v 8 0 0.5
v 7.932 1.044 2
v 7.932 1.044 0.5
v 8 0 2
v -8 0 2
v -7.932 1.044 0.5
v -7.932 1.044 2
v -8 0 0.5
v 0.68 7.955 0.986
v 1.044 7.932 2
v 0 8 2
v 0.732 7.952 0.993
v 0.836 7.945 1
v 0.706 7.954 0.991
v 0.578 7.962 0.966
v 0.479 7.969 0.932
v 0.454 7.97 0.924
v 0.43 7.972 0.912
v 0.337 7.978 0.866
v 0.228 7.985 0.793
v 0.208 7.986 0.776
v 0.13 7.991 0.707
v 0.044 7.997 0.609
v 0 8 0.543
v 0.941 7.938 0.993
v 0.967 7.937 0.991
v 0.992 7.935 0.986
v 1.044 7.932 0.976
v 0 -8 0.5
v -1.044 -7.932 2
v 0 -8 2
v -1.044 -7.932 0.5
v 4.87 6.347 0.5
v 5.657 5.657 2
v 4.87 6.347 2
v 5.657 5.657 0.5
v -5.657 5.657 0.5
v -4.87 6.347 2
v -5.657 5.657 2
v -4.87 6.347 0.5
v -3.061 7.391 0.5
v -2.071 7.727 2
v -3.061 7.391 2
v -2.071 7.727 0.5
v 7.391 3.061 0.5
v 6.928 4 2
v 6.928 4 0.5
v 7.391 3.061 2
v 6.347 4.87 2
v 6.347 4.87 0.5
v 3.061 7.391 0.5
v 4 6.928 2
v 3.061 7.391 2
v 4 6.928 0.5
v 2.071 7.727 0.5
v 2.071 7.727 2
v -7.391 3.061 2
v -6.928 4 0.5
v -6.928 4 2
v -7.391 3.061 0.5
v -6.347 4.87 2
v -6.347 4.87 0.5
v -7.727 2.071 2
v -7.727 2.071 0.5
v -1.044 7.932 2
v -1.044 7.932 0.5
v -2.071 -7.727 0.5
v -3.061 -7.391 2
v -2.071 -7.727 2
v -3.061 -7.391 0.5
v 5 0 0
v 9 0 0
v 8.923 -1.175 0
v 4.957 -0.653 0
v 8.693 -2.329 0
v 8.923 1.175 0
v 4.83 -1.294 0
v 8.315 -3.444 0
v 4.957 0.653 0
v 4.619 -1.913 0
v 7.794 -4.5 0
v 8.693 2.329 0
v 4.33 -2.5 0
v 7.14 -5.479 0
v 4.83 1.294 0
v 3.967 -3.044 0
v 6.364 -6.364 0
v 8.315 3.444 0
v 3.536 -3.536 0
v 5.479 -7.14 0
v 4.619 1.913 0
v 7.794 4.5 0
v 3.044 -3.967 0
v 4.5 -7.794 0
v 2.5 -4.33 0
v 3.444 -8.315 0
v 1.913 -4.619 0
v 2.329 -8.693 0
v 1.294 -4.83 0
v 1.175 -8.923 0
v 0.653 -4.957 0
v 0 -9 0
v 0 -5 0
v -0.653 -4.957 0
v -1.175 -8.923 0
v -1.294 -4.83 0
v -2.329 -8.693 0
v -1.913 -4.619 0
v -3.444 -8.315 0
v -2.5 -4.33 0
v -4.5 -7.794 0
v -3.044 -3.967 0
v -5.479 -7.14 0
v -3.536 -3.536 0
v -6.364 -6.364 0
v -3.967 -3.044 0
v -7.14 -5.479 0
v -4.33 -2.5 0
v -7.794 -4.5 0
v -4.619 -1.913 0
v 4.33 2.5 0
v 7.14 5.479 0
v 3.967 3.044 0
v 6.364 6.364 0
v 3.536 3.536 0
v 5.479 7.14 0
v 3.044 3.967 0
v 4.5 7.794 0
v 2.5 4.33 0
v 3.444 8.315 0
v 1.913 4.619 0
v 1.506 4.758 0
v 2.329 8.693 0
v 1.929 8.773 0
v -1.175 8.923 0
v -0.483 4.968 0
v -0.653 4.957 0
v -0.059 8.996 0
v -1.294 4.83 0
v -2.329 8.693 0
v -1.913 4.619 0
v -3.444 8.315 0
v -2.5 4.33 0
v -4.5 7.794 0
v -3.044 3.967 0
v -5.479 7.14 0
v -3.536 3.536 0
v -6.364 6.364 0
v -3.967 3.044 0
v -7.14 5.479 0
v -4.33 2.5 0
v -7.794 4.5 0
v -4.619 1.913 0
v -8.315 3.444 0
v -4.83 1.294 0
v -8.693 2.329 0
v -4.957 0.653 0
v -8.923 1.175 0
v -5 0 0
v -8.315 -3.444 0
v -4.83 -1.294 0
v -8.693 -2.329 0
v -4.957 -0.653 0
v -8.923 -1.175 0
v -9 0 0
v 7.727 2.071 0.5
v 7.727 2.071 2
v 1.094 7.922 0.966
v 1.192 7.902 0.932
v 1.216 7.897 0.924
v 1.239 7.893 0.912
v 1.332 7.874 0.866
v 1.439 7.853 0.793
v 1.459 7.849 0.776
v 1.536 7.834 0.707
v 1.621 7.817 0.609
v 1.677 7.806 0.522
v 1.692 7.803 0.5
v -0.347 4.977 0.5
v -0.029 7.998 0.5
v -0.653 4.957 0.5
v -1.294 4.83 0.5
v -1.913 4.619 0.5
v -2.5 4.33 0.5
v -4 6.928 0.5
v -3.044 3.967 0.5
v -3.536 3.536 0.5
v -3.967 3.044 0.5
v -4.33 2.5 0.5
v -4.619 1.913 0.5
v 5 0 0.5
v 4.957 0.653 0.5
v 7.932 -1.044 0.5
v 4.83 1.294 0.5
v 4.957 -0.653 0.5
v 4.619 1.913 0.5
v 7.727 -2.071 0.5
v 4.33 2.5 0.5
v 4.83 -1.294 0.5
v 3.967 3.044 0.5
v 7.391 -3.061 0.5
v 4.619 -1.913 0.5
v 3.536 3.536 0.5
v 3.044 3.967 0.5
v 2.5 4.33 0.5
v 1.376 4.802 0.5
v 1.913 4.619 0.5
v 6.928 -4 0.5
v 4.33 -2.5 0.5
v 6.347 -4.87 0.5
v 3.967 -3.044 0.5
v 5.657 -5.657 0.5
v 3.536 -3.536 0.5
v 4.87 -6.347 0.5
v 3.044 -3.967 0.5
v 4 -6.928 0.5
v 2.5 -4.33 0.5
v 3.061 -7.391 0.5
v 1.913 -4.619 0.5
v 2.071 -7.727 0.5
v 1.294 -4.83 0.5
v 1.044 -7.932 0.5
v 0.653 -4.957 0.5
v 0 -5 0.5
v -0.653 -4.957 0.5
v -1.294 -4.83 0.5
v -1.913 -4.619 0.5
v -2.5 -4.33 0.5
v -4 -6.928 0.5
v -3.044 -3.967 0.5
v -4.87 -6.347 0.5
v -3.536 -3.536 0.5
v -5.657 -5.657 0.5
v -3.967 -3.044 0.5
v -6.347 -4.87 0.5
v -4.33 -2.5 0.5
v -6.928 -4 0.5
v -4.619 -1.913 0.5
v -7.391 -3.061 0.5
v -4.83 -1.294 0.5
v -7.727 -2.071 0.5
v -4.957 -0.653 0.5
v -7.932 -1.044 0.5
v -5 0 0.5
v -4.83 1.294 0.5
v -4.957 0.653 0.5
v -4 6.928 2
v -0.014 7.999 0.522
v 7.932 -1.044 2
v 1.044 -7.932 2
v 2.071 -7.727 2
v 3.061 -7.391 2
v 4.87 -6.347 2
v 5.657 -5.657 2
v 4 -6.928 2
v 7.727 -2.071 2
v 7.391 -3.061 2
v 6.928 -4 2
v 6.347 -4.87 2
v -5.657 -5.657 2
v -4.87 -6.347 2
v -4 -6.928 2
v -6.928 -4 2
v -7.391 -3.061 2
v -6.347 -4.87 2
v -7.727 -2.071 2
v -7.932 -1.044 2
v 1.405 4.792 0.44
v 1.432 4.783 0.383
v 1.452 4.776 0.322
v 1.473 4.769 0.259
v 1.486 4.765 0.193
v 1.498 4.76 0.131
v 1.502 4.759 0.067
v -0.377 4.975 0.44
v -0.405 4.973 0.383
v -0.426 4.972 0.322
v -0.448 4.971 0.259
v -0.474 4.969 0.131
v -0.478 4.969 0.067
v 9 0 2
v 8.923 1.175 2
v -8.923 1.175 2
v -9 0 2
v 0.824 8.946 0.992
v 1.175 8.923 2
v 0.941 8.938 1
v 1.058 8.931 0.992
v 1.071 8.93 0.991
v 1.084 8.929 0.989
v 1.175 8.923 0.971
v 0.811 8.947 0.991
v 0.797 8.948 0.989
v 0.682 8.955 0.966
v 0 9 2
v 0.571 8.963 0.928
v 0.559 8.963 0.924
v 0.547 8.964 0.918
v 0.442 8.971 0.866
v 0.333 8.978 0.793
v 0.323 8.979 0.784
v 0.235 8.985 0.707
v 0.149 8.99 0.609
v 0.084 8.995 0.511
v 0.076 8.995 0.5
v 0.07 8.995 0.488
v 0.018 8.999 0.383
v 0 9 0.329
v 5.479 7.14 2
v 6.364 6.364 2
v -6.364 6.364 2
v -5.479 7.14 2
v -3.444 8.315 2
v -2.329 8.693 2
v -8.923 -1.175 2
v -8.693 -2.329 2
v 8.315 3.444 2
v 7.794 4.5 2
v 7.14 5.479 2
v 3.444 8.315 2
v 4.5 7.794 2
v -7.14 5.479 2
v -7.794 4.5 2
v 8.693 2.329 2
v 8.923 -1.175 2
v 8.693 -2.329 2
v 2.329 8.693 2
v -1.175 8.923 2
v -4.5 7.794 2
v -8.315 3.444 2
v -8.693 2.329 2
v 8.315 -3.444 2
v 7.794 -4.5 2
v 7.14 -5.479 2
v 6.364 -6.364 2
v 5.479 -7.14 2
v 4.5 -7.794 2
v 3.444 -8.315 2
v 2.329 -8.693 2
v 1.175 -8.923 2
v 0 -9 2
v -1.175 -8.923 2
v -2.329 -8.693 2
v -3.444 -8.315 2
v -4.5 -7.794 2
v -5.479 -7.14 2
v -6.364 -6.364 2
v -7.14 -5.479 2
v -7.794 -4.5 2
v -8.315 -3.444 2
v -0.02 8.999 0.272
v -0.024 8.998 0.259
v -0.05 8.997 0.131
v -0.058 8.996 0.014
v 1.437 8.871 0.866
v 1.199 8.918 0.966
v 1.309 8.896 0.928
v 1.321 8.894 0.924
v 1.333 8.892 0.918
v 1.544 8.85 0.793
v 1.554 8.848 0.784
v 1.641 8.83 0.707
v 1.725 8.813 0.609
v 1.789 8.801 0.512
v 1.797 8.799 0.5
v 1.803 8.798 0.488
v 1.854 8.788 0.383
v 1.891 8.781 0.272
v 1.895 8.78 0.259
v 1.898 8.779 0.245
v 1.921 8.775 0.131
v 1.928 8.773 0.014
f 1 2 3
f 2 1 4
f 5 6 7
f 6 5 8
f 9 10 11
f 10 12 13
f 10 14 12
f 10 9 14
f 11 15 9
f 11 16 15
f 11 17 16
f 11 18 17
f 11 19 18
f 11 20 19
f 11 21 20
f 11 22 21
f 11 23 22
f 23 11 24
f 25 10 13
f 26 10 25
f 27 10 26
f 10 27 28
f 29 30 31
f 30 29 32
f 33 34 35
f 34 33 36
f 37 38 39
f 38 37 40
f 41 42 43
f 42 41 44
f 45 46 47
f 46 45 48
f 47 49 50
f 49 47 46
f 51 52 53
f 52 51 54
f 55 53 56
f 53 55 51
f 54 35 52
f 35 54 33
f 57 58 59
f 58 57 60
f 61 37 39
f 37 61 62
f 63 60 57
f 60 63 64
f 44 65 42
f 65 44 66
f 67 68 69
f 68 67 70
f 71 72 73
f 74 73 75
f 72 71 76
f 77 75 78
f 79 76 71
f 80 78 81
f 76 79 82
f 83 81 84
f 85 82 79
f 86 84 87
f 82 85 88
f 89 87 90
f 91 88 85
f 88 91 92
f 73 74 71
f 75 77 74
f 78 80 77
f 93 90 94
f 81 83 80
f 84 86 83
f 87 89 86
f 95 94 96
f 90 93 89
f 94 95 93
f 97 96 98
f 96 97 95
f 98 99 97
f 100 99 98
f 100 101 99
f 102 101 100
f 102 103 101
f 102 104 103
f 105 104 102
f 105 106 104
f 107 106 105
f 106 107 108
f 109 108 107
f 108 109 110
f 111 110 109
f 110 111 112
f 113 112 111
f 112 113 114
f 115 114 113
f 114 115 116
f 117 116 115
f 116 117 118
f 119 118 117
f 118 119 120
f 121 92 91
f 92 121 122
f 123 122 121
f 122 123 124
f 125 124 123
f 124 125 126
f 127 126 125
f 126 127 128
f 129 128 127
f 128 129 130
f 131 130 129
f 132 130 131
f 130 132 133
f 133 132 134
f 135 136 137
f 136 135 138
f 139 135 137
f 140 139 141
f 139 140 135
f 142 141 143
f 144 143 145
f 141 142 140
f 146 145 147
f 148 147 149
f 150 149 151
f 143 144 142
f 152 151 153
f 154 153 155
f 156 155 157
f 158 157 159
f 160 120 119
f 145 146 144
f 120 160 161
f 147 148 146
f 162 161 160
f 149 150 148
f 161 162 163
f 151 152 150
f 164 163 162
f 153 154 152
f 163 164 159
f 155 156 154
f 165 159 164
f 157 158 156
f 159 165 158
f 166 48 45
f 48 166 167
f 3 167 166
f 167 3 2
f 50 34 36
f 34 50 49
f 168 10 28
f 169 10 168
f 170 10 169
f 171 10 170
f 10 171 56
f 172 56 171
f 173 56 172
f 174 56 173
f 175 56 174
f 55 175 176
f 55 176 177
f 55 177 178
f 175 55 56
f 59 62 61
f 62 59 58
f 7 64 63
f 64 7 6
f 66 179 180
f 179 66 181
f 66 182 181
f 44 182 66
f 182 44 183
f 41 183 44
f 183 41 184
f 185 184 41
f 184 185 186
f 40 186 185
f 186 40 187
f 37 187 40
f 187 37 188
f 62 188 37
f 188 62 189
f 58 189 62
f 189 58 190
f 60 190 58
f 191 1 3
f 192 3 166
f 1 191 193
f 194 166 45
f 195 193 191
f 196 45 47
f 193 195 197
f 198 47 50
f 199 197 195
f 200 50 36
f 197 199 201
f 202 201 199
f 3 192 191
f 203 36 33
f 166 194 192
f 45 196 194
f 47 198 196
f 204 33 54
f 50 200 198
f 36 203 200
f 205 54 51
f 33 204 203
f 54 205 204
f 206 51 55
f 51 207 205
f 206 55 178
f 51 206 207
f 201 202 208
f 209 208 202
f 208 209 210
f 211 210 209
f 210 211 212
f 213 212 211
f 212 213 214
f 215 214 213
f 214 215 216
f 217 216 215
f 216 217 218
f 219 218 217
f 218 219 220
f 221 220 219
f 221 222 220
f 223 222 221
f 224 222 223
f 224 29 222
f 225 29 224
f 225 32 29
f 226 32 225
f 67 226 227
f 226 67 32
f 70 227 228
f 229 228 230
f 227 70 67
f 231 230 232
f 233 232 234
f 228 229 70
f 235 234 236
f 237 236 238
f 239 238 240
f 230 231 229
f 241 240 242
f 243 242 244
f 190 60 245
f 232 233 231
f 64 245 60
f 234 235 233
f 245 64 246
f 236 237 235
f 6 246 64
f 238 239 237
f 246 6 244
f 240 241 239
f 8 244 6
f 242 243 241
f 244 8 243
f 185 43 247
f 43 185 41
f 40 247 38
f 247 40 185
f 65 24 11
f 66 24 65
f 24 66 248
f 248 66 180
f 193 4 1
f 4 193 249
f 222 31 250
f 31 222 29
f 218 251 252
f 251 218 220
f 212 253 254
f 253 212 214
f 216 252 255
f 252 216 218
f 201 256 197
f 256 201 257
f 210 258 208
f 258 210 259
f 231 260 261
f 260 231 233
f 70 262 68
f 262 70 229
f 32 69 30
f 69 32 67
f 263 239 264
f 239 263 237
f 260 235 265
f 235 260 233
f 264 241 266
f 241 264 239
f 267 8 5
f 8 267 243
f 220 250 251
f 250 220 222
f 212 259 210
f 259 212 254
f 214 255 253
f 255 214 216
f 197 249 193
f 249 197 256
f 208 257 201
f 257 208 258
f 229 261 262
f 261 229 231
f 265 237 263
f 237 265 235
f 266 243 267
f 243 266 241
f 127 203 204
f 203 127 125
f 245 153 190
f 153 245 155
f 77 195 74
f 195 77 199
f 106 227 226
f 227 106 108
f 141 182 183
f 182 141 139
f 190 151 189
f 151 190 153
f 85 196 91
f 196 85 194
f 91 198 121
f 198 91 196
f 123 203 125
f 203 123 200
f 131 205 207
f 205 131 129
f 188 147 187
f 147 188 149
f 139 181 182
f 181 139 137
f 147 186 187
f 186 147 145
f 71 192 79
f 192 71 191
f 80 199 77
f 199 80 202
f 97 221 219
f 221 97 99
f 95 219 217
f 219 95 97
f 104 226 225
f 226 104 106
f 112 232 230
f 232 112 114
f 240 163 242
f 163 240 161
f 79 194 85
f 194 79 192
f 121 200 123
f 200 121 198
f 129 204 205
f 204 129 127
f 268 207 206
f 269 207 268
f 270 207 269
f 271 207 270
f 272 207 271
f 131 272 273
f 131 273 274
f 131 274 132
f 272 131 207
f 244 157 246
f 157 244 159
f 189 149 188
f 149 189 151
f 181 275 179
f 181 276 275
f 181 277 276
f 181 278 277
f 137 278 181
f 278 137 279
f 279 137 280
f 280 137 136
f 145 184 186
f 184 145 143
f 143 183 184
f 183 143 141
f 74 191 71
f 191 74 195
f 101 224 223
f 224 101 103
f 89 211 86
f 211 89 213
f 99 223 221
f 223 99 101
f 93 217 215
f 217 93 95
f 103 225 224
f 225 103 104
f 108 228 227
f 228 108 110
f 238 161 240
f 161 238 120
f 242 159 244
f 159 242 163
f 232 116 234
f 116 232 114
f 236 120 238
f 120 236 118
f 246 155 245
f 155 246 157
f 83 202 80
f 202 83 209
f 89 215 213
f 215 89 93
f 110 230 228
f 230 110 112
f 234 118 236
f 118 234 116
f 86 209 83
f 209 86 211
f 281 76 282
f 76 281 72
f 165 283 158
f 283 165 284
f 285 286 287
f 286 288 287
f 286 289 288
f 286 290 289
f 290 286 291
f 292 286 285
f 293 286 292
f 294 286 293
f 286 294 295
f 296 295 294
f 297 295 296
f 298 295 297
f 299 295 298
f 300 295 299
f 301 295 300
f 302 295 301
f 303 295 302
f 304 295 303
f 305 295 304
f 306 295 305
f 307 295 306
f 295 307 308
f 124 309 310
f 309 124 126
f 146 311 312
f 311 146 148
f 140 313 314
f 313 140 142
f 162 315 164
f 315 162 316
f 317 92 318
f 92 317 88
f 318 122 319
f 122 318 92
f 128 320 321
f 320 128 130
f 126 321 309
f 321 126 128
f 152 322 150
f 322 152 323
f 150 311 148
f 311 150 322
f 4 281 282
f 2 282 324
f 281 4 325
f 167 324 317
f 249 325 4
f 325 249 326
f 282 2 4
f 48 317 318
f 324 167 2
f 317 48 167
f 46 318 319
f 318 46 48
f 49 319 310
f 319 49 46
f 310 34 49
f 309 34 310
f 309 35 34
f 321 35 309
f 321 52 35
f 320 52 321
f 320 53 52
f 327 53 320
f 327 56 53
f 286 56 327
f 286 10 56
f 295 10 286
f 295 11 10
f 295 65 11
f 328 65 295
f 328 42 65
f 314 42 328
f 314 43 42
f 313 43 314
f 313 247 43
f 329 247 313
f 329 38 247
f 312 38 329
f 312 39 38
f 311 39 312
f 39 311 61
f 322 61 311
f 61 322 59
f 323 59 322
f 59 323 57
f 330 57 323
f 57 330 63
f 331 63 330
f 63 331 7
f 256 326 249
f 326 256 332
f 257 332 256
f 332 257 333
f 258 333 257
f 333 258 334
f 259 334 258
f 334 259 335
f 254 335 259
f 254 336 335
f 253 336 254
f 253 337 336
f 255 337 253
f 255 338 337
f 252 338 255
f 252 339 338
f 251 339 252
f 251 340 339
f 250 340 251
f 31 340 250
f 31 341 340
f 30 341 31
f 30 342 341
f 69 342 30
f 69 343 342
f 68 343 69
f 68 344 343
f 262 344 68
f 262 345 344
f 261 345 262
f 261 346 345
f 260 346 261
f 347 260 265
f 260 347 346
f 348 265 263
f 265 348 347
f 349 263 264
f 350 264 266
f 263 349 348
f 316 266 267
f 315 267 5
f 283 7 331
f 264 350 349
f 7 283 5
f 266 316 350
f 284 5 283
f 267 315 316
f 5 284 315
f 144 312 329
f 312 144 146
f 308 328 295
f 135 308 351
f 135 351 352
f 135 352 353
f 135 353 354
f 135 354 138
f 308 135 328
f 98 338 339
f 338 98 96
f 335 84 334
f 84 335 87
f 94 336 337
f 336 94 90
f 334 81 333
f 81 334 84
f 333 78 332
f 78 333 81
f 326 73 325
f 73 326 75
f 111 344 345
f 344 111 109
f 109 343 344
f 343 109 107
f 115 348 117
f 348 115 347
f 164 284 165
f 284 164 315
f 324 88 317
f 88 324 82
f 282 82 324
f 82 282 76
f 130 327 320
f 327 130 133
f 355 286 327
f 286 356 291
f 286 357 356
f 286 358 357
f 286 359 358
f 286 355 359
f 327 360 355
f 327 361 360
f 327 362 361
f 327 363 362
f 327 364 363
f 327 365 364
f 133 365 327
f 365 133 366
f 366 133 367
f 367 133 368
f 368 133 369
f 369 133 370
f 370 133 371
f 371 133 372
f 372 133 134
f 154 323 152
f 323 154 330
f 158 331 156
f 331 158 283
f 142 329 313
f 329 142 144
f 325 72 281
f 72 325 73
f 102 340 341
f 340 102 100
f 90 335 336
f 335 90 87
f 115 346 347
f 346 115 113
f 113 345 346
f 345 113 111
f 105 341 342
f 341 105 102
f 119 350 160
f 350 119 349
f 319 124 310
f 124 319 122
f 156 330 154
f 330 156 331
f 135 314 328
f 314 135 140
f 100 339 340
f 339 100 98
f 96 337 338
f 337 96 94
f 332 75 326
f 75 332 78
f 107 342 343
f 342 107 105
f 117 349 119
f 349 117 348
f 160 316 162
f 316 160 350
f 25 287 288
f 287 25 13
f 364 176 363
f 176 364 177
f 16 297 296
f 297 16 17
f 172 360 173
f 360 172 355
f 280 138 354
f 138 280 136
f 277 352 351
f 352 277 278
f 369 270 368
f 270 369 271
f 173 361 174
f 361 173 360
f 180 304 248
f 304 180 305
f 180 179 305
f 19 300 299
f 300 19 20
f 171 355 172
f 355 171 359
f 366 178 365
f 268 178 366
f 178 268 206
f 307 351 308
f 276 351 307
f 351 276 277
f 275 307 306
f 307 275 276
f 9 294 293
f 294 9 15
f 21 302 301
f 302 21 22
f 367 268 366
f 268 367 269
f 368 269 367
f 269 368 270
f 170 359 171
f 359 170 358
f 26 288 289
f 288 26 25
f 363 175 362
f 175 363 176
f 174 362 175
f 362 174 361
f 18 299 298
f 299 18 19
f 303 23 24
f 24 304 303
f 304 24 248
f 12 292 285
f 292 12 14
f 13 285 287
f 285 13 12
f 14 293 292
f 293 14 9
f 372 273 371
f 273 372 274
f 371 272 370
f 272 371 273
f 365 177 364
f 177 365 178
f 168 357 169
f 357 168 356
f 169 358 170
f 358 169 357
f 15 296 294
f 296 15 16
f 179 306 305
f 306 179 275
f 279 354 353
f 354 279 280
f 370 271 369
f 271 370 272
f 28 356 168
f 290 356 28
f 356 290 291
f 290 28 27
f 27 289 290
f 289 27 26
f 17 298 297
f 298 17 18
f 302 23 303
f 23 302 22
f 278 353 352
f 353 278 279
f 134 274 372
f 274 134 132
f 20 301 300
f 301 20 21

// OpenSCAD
// file: ../build_environments.scad
// build_environments.scad: modules to build level sections
//

module pool(diameter=10.0, wall_height=2.0, step_width=3.0, connections=[])
{
    difference() {
        union() {
        difference() {
            cylinder(h=0.5,r1=diameter+step_width,r2=diameter+step_width,$fn=48);
            translate([0,0,-0.1])
                cylinder(h=0.7,r1=diameter,r2=diameter,$fn=48);
        }
        difference() {
            cylinder(h=wall_height,r1=diameter+step_width+1.0,r2=diameter+step_width+1.0,$fn=48);
            translate([0,0,-0.1])
                cylinder(h=wall_height+0.2,r1=diameter+step_width,r2=diameter+step_width,$fn=48);
        }
        }
    
        for (c = connections)
        {
            rotate([0,90,0]) {
                angle = atan2(c[1],c[0]);
                rotate([-angle,0,0]) {
                    cylinder(h=diameter+5.0,r1=c[2],r2=c[2],$fn=48);
                }
            }
        }
    }
}

module straight(length=10.0, width=2.0, dy1=0.0, dy2=0.0, dz=0.0)
{
    dims = [0, 0, 0, 0, 0, (dz/length)];
    matrix = [
        [ 1, dims[0], dims[1], 0 ],
        [ dims[2], 1, dims[4], 0 ],
        [ dims[5], dims[3], 1, 0 ],
        [ 0, 0, 0, 1 ]
    ];
    multmatrix(matrix)
    difference() {
        translate([dy1,0,0])
        union() {
            rotate([0,90,0]) {
                difference() {
                    cylinder(h=(length-dy1-dy2),r1=width+1.0,r2=width+1.0,$fn=24);
                    translate([0,0,-0.1])
                        cylinder(h=(length-dy1-dy2+0.2),r1=width,r2=width,$fn=24);
                }
                difference() {
                    cylinder(h=1.0,r1=width+2.0,r2=width+2.0,$fn=24);
                    translate([0,0,-0.1])
                        cylinder(h=1.2,r1=width,r2=width,$fn=24);
                }
                translate([0,0,(length-dy1-dy2)-1.0]) {
                    difference() {
                        cylinder(h=1.0,r1=width+2.0,r2=width+2.0,$fn=24);
                        translate([0,0,-0.1])
                            cylinder(h=1.2,r1=width,r2=width,$fn=24);
                    }
                }
            }
        }
        translate([0,0,-(2*width+4.0)/2])
            cube([3*length,3*length,2*width+4.0],center=true);
    }
}

module curve(p0=[0,0], center=[0,0], dir=1, angle=0.0, width=2.0)
{
    radius = sqrt((p0[0]-center[0])*(p0[0]-center[0]) + (p0[1]-center[1])*(p0[1]-center[1]));
    if (dir == 0) {
        difference() {
            rotate([0,0,-90])
            difference() {
                rotate_extrude(angle = angle, convexity = 10, $fn=32)
                    translate([radius, 0, 0])
                        circle(r = width+1.0,$fn=24);
                rotate([0,0,-1.0])
                    rotate_extrude(angle = angle+2.0, convexity = 10, $fn=32)
                        translate([radius, 0, 0])
                            circle(r = width,$fn=24);
            }
            translate([0,0,-(2*width+4.0)/2])
                cube([5*radius,5*radius,2*width+4.0],center=true);
        }
    }
    else {
        difference() {
            rotate([0,0,90])
            difference() {
                rotate_extrude(angle = -angle, convexity = 10, $fn=32)
                    translate([radius, 0, 0])
                        circle(r = width+1.0,$fn=24);
                rotate([0,0,1.0])
                    rotate_extrude(angle = -angle-2.0, convexity = 10, $fn=32)
                        translate([radius, 0, 0])
                            circle(r = width,$fn=24);
            }
            translate([0,0,-(2*width+4.0)/2])
                cube([5*radius,5*radius,2*width+4.0],center=true);
        }
    }

}

// test pool
//pool(diameter=12.0000, wall_height=3.0000, step_width=3.0000, connections=[[0.0000,-26.0000,2.0000], [23.6074,0.0000,2.0000]]);

// test straight, slope
//straight(length=26.0000, width=2.0000, dy1=11.8322, dy2=6.7082, dz=0.0000);
//straight(length=29.1549, width=12.0000, dy1=0.0000, dy2=0.0000, dz=-15.0000);

// test curve
//curve(p0=[23.6074, 0.0000], center=[23.6074, 5.0000], dir=0, angle=60.1011, width=2.0000);
//curve(p0=[33.6426, 12.4219], center=[37.9771, 9.9295], dir=1, angle=120.4627, width=2.0000);
// main file
use <../build_environments.scad>;
pool(diameter=5.0000, wall_height=2.0000, step_width=3.0000, connections=[[4.0000,38.0000,1.0000]]);
